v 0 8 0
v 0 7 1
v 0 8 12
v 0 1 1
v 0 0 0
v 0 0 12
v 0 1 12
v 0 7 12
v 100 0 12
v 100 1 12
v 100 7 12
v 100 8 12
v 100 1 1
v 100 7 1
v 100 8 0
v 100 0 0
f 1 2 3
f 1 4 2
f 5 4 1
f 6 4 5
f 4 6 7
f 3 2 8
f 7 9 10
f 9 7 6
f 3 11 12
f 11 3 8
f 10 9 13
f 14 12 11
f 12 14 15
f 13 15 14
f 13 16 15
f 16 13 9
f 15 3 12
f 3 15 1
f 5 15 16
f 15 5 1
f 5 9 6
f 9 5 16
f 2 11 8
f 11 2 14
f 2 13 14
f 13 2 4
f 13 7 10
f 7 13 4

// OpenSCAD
difference() {
cube([100,8,12]);
translate([0,1,1]) cube([100,6,11]);
}
